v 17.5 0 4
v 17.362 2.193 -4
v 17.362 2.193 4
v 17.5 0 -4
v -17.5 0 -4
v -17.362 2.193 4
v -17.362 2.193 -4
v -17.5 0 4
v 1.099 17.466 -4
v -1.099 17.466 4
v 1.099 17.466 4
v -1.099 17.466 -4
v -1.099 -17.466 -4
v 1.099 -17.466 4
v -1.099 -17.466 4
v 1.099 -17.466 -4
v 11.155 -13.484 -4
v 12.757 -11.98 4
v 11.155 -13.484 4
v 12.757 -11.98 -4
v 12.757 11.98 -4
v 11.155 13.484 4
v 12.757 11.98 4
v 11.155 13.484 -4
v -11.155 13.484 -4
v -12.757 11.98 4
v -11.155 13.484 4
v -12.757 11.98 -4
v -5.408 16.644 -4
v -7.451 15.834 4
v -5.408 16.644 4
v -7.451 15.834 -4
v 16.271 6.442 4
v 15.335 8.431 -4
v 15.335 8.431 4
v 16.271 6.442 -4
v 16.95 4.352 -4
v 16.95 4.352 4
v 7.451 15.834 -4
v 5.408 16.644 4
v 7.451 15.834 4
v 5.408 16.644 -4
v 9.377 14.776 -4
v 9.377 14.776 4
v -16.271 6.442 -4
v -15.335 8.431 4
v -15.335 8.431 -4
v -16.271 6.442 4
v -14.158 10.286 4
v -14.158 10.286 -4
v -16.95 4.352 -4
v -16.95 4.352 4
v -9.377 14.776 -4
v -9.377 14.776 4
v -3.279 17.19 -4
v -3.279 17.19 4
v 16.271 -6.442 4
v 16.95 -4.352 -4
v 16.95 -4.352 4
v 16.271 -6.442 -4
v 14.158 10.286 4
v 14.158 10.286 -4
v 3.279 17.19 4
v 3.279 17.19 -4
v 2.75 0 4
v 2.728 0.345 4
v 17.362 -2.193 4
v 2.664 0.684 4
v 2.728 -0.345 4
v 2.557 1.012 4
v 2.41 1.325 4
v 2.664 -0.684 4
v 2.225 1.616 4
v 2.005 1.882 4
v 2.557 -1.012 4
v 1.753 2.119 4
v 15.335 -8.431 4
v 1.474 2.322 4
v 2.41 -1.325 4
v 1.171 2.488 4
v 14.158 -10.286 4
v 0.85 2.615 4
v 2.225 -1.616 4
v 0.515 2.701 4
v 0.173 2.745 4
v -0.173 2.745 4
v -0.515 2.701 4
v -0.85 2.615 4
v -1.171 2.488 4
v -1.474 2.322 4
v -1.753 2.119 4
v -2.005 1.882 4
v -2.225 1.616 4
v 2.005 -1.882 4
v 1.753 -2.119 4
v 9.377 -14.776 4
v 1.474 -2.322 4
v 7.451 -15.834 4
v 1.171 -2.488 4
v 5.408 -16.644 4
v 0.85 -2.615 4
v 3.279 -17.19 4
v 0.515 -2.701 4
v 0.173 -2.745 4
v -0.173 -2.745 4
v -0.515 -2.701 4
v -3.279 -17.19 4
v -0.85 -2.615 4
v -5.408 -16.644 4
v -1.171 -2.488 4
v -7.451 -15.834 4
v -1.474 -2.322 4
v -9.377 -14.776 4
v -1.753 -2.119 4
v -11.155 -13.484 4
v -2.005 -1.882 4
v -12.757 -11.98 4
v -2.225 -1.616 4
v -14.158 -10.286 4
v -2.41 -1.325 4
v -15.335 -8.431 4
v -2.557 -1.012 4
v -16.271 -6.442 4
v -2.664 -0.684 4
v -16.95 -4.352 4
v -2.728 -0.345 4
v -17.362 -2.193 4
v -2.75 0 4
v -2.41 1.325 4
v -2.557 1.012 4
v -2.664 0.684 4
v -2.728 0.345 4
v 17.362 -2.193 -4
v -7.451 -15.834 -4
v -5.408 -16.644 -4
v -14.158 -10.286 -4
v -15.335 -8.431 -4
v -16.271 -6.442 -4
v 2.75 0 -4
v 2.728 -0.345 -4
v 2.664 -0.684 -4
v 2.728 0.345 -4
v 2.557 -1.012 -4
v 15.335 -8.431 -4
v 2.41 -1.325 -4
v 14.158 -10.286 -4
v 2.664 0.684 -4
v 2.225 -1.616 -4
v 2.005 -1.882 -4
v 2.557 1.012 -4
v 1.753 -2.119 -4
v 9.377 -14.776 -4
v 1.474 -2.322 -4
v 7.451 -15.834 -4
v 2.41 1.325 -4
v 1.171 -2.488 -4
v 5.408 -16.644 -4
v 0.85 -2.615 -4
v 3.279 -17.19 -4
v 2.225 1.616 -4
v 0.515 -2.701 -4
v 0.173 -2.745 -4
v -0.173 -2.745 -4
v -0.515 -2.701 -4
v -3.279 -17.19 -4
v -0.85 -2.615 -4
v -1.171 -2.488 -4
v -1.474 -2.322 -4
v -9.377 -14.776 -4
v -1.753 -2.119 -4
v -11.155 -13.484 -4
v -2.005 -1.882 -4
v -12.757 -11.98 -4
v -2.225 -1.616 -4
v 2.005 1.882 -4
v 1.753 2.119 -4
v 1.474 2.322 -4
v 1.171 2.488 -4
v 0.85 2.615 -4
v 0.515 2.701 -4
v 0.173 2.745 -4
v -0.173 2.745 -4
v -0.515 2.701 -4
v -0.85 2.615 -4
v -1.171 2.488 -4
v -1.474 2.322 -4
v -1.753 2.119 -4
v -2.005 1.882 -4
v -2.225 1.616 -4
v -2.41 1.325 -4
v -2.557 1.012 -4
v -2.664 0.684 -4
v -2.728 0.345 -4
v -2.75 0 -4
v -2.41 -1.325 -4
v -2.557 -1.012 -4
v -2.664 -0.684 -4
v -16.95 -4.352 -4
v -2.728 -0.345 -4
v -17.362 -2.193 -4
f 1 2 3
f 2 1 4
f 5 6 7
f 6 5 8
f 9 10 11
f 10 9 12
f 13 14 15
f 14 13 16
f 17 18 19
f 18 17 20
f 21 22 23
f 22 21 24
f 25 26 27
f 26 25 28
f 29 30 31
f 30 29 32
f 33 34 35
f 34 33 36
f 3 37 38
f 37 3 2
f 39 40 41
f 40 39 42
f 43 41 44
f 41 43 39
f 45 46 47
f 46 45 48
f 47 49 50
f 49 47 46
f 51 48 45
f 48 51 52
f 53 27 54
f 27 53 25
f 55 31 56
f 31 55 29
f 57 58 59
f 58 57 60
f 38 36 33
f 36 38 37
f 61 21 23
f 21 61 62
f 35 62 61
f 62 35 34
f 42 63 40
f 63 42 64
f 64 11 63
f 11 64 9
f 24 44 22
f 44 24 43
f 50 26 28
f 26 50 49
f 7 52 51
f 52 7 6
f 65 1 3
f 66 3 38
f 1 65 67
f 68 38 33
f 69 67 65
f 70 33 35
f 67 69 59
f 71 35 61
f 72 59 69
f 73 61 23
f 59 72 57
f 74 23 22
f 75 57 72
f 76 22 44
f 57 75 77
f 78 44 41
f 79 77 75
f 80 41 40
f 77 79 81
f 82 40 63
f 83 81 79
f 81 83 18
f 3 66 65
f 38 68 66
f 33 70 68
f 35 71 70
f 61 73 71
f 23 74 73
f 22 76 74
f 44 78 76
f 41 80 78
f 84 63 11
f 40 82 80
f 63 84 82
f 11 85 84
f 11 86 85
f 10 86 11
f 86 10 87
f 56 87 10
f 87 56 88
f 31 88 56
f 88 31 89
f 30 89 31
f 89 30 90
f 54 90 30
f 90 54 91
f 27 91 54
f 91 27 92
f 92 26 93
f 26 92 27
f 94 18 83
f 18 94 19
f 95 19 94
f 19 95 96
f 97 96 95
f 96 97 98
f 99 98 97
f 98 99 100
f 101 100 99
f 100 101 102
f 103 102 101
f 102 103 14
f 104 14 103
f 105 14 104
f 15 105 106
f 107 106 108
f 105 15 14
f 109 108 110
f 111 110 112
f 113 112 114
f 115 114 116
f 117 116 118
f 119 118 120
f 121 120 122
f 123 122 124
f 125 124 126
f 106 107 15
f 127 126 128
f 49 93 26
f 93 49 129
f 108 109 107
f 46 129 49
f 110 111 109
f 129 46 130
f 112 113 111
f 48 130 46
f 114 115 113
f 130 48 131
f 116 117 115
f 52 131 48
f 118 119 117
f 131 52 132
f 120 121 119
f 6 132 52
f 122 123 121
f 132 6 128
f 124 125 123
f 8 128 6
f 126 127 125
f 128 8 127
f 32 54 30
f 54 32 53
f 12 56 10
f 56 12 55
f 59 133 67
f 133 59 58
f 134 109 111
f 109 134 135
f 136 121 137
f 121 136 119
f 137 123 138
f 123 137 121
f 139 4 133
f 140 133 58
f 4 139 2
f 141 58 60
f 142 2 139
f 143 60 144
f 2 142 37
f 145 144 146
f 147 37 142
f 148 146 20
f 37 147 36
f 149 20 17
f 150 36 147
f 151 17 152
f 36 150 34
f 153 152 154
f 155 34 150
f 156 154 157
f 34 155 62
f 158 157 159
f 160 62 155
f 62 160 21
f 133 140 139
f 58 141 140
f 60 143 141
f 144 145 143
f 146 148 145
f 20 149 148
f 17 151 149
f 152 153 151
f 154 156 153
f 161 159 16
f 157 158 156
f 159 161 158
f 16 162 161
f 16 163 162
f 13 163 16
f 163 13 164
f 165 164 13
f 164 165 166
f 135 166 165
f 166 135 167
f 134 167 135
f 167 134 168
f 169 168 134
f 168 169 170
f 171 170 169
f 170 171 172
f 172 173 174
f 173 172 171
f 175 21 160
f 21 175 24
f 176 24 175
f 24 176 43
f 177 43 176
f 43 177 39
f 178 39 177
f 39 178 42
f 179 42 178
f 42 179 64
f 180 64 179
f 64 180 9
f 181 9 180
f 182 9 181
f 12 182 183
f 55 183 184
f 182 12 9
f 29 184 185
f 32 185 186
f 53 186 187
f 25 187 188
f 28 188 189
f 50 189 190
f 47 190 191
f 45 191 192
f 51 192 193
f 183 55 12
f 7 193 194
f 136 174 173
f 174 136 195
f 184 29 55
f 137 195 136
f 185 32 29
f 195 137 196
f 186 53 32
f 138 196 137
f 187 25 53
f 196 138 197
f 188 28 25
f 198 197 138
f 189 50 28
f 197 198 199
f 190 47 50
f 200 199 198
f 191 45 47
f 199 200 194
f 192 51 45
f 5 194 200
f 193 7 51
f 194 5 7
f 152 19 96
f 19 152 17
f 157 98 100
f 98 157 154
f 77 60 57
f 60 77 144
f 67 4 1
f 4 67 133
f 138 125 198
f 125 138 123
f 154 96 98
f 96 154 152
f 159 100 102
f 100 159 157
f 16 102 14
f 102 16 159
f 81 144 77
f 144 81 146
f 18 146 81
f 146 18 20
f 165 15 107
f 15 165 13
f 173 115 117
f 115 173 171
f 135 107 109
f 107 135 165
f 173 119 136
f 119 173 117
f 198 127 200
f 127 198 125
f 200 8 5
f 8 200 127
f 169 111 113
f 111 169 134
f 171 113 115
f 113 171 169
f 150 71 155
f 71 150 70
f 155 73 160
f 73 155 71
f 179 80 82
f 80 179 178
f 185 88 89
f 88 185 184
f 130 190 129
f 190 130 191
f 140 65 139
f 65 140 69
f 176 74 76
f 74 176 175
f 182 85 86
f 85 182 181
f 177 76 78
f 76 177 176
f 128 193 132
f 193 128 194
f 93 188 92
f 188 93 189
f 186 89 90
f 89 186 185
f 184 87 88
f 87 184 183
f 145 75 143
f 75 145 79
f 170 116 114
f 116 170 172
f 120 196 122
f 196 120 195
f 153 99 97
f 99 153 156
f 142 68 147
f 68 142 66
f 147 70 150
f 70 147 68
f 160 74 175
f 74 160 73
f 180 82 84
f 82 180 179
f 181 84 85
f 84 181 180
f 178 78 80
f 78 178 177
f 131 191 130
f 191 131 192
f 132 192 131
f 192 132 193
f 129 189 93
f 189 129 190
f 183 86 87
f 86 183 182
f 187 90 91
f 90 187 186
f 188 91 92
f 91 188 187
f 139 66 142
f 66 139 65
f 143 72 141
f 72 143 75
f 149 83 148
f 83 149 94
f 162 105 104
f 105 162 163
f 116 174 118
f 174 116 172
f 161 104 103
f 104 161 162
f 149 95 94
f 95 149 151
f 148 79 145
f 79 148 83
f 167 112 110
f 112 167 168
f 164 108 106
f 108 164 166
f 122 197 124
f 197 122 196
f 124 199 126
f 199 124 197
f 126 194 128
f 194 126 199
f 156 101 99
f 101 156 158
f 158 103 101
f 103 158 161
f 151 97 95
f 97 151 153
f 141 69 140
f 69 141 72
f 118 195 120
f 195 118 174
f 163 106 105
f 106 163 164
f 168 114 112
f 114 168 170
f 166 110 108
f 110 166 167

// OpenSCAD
$fn = 50;


difference() {
	union() {
		translate(v = [0, 0, -4.0000000000]) {
			cylinder(h = 8, r = 17.5000000000);
		}
	}
	union() {
		translate(v = [0, 0, -100.0000000000]) {
			cylinder(h = 200, r = 2.7500000000);
		}
	}
}
